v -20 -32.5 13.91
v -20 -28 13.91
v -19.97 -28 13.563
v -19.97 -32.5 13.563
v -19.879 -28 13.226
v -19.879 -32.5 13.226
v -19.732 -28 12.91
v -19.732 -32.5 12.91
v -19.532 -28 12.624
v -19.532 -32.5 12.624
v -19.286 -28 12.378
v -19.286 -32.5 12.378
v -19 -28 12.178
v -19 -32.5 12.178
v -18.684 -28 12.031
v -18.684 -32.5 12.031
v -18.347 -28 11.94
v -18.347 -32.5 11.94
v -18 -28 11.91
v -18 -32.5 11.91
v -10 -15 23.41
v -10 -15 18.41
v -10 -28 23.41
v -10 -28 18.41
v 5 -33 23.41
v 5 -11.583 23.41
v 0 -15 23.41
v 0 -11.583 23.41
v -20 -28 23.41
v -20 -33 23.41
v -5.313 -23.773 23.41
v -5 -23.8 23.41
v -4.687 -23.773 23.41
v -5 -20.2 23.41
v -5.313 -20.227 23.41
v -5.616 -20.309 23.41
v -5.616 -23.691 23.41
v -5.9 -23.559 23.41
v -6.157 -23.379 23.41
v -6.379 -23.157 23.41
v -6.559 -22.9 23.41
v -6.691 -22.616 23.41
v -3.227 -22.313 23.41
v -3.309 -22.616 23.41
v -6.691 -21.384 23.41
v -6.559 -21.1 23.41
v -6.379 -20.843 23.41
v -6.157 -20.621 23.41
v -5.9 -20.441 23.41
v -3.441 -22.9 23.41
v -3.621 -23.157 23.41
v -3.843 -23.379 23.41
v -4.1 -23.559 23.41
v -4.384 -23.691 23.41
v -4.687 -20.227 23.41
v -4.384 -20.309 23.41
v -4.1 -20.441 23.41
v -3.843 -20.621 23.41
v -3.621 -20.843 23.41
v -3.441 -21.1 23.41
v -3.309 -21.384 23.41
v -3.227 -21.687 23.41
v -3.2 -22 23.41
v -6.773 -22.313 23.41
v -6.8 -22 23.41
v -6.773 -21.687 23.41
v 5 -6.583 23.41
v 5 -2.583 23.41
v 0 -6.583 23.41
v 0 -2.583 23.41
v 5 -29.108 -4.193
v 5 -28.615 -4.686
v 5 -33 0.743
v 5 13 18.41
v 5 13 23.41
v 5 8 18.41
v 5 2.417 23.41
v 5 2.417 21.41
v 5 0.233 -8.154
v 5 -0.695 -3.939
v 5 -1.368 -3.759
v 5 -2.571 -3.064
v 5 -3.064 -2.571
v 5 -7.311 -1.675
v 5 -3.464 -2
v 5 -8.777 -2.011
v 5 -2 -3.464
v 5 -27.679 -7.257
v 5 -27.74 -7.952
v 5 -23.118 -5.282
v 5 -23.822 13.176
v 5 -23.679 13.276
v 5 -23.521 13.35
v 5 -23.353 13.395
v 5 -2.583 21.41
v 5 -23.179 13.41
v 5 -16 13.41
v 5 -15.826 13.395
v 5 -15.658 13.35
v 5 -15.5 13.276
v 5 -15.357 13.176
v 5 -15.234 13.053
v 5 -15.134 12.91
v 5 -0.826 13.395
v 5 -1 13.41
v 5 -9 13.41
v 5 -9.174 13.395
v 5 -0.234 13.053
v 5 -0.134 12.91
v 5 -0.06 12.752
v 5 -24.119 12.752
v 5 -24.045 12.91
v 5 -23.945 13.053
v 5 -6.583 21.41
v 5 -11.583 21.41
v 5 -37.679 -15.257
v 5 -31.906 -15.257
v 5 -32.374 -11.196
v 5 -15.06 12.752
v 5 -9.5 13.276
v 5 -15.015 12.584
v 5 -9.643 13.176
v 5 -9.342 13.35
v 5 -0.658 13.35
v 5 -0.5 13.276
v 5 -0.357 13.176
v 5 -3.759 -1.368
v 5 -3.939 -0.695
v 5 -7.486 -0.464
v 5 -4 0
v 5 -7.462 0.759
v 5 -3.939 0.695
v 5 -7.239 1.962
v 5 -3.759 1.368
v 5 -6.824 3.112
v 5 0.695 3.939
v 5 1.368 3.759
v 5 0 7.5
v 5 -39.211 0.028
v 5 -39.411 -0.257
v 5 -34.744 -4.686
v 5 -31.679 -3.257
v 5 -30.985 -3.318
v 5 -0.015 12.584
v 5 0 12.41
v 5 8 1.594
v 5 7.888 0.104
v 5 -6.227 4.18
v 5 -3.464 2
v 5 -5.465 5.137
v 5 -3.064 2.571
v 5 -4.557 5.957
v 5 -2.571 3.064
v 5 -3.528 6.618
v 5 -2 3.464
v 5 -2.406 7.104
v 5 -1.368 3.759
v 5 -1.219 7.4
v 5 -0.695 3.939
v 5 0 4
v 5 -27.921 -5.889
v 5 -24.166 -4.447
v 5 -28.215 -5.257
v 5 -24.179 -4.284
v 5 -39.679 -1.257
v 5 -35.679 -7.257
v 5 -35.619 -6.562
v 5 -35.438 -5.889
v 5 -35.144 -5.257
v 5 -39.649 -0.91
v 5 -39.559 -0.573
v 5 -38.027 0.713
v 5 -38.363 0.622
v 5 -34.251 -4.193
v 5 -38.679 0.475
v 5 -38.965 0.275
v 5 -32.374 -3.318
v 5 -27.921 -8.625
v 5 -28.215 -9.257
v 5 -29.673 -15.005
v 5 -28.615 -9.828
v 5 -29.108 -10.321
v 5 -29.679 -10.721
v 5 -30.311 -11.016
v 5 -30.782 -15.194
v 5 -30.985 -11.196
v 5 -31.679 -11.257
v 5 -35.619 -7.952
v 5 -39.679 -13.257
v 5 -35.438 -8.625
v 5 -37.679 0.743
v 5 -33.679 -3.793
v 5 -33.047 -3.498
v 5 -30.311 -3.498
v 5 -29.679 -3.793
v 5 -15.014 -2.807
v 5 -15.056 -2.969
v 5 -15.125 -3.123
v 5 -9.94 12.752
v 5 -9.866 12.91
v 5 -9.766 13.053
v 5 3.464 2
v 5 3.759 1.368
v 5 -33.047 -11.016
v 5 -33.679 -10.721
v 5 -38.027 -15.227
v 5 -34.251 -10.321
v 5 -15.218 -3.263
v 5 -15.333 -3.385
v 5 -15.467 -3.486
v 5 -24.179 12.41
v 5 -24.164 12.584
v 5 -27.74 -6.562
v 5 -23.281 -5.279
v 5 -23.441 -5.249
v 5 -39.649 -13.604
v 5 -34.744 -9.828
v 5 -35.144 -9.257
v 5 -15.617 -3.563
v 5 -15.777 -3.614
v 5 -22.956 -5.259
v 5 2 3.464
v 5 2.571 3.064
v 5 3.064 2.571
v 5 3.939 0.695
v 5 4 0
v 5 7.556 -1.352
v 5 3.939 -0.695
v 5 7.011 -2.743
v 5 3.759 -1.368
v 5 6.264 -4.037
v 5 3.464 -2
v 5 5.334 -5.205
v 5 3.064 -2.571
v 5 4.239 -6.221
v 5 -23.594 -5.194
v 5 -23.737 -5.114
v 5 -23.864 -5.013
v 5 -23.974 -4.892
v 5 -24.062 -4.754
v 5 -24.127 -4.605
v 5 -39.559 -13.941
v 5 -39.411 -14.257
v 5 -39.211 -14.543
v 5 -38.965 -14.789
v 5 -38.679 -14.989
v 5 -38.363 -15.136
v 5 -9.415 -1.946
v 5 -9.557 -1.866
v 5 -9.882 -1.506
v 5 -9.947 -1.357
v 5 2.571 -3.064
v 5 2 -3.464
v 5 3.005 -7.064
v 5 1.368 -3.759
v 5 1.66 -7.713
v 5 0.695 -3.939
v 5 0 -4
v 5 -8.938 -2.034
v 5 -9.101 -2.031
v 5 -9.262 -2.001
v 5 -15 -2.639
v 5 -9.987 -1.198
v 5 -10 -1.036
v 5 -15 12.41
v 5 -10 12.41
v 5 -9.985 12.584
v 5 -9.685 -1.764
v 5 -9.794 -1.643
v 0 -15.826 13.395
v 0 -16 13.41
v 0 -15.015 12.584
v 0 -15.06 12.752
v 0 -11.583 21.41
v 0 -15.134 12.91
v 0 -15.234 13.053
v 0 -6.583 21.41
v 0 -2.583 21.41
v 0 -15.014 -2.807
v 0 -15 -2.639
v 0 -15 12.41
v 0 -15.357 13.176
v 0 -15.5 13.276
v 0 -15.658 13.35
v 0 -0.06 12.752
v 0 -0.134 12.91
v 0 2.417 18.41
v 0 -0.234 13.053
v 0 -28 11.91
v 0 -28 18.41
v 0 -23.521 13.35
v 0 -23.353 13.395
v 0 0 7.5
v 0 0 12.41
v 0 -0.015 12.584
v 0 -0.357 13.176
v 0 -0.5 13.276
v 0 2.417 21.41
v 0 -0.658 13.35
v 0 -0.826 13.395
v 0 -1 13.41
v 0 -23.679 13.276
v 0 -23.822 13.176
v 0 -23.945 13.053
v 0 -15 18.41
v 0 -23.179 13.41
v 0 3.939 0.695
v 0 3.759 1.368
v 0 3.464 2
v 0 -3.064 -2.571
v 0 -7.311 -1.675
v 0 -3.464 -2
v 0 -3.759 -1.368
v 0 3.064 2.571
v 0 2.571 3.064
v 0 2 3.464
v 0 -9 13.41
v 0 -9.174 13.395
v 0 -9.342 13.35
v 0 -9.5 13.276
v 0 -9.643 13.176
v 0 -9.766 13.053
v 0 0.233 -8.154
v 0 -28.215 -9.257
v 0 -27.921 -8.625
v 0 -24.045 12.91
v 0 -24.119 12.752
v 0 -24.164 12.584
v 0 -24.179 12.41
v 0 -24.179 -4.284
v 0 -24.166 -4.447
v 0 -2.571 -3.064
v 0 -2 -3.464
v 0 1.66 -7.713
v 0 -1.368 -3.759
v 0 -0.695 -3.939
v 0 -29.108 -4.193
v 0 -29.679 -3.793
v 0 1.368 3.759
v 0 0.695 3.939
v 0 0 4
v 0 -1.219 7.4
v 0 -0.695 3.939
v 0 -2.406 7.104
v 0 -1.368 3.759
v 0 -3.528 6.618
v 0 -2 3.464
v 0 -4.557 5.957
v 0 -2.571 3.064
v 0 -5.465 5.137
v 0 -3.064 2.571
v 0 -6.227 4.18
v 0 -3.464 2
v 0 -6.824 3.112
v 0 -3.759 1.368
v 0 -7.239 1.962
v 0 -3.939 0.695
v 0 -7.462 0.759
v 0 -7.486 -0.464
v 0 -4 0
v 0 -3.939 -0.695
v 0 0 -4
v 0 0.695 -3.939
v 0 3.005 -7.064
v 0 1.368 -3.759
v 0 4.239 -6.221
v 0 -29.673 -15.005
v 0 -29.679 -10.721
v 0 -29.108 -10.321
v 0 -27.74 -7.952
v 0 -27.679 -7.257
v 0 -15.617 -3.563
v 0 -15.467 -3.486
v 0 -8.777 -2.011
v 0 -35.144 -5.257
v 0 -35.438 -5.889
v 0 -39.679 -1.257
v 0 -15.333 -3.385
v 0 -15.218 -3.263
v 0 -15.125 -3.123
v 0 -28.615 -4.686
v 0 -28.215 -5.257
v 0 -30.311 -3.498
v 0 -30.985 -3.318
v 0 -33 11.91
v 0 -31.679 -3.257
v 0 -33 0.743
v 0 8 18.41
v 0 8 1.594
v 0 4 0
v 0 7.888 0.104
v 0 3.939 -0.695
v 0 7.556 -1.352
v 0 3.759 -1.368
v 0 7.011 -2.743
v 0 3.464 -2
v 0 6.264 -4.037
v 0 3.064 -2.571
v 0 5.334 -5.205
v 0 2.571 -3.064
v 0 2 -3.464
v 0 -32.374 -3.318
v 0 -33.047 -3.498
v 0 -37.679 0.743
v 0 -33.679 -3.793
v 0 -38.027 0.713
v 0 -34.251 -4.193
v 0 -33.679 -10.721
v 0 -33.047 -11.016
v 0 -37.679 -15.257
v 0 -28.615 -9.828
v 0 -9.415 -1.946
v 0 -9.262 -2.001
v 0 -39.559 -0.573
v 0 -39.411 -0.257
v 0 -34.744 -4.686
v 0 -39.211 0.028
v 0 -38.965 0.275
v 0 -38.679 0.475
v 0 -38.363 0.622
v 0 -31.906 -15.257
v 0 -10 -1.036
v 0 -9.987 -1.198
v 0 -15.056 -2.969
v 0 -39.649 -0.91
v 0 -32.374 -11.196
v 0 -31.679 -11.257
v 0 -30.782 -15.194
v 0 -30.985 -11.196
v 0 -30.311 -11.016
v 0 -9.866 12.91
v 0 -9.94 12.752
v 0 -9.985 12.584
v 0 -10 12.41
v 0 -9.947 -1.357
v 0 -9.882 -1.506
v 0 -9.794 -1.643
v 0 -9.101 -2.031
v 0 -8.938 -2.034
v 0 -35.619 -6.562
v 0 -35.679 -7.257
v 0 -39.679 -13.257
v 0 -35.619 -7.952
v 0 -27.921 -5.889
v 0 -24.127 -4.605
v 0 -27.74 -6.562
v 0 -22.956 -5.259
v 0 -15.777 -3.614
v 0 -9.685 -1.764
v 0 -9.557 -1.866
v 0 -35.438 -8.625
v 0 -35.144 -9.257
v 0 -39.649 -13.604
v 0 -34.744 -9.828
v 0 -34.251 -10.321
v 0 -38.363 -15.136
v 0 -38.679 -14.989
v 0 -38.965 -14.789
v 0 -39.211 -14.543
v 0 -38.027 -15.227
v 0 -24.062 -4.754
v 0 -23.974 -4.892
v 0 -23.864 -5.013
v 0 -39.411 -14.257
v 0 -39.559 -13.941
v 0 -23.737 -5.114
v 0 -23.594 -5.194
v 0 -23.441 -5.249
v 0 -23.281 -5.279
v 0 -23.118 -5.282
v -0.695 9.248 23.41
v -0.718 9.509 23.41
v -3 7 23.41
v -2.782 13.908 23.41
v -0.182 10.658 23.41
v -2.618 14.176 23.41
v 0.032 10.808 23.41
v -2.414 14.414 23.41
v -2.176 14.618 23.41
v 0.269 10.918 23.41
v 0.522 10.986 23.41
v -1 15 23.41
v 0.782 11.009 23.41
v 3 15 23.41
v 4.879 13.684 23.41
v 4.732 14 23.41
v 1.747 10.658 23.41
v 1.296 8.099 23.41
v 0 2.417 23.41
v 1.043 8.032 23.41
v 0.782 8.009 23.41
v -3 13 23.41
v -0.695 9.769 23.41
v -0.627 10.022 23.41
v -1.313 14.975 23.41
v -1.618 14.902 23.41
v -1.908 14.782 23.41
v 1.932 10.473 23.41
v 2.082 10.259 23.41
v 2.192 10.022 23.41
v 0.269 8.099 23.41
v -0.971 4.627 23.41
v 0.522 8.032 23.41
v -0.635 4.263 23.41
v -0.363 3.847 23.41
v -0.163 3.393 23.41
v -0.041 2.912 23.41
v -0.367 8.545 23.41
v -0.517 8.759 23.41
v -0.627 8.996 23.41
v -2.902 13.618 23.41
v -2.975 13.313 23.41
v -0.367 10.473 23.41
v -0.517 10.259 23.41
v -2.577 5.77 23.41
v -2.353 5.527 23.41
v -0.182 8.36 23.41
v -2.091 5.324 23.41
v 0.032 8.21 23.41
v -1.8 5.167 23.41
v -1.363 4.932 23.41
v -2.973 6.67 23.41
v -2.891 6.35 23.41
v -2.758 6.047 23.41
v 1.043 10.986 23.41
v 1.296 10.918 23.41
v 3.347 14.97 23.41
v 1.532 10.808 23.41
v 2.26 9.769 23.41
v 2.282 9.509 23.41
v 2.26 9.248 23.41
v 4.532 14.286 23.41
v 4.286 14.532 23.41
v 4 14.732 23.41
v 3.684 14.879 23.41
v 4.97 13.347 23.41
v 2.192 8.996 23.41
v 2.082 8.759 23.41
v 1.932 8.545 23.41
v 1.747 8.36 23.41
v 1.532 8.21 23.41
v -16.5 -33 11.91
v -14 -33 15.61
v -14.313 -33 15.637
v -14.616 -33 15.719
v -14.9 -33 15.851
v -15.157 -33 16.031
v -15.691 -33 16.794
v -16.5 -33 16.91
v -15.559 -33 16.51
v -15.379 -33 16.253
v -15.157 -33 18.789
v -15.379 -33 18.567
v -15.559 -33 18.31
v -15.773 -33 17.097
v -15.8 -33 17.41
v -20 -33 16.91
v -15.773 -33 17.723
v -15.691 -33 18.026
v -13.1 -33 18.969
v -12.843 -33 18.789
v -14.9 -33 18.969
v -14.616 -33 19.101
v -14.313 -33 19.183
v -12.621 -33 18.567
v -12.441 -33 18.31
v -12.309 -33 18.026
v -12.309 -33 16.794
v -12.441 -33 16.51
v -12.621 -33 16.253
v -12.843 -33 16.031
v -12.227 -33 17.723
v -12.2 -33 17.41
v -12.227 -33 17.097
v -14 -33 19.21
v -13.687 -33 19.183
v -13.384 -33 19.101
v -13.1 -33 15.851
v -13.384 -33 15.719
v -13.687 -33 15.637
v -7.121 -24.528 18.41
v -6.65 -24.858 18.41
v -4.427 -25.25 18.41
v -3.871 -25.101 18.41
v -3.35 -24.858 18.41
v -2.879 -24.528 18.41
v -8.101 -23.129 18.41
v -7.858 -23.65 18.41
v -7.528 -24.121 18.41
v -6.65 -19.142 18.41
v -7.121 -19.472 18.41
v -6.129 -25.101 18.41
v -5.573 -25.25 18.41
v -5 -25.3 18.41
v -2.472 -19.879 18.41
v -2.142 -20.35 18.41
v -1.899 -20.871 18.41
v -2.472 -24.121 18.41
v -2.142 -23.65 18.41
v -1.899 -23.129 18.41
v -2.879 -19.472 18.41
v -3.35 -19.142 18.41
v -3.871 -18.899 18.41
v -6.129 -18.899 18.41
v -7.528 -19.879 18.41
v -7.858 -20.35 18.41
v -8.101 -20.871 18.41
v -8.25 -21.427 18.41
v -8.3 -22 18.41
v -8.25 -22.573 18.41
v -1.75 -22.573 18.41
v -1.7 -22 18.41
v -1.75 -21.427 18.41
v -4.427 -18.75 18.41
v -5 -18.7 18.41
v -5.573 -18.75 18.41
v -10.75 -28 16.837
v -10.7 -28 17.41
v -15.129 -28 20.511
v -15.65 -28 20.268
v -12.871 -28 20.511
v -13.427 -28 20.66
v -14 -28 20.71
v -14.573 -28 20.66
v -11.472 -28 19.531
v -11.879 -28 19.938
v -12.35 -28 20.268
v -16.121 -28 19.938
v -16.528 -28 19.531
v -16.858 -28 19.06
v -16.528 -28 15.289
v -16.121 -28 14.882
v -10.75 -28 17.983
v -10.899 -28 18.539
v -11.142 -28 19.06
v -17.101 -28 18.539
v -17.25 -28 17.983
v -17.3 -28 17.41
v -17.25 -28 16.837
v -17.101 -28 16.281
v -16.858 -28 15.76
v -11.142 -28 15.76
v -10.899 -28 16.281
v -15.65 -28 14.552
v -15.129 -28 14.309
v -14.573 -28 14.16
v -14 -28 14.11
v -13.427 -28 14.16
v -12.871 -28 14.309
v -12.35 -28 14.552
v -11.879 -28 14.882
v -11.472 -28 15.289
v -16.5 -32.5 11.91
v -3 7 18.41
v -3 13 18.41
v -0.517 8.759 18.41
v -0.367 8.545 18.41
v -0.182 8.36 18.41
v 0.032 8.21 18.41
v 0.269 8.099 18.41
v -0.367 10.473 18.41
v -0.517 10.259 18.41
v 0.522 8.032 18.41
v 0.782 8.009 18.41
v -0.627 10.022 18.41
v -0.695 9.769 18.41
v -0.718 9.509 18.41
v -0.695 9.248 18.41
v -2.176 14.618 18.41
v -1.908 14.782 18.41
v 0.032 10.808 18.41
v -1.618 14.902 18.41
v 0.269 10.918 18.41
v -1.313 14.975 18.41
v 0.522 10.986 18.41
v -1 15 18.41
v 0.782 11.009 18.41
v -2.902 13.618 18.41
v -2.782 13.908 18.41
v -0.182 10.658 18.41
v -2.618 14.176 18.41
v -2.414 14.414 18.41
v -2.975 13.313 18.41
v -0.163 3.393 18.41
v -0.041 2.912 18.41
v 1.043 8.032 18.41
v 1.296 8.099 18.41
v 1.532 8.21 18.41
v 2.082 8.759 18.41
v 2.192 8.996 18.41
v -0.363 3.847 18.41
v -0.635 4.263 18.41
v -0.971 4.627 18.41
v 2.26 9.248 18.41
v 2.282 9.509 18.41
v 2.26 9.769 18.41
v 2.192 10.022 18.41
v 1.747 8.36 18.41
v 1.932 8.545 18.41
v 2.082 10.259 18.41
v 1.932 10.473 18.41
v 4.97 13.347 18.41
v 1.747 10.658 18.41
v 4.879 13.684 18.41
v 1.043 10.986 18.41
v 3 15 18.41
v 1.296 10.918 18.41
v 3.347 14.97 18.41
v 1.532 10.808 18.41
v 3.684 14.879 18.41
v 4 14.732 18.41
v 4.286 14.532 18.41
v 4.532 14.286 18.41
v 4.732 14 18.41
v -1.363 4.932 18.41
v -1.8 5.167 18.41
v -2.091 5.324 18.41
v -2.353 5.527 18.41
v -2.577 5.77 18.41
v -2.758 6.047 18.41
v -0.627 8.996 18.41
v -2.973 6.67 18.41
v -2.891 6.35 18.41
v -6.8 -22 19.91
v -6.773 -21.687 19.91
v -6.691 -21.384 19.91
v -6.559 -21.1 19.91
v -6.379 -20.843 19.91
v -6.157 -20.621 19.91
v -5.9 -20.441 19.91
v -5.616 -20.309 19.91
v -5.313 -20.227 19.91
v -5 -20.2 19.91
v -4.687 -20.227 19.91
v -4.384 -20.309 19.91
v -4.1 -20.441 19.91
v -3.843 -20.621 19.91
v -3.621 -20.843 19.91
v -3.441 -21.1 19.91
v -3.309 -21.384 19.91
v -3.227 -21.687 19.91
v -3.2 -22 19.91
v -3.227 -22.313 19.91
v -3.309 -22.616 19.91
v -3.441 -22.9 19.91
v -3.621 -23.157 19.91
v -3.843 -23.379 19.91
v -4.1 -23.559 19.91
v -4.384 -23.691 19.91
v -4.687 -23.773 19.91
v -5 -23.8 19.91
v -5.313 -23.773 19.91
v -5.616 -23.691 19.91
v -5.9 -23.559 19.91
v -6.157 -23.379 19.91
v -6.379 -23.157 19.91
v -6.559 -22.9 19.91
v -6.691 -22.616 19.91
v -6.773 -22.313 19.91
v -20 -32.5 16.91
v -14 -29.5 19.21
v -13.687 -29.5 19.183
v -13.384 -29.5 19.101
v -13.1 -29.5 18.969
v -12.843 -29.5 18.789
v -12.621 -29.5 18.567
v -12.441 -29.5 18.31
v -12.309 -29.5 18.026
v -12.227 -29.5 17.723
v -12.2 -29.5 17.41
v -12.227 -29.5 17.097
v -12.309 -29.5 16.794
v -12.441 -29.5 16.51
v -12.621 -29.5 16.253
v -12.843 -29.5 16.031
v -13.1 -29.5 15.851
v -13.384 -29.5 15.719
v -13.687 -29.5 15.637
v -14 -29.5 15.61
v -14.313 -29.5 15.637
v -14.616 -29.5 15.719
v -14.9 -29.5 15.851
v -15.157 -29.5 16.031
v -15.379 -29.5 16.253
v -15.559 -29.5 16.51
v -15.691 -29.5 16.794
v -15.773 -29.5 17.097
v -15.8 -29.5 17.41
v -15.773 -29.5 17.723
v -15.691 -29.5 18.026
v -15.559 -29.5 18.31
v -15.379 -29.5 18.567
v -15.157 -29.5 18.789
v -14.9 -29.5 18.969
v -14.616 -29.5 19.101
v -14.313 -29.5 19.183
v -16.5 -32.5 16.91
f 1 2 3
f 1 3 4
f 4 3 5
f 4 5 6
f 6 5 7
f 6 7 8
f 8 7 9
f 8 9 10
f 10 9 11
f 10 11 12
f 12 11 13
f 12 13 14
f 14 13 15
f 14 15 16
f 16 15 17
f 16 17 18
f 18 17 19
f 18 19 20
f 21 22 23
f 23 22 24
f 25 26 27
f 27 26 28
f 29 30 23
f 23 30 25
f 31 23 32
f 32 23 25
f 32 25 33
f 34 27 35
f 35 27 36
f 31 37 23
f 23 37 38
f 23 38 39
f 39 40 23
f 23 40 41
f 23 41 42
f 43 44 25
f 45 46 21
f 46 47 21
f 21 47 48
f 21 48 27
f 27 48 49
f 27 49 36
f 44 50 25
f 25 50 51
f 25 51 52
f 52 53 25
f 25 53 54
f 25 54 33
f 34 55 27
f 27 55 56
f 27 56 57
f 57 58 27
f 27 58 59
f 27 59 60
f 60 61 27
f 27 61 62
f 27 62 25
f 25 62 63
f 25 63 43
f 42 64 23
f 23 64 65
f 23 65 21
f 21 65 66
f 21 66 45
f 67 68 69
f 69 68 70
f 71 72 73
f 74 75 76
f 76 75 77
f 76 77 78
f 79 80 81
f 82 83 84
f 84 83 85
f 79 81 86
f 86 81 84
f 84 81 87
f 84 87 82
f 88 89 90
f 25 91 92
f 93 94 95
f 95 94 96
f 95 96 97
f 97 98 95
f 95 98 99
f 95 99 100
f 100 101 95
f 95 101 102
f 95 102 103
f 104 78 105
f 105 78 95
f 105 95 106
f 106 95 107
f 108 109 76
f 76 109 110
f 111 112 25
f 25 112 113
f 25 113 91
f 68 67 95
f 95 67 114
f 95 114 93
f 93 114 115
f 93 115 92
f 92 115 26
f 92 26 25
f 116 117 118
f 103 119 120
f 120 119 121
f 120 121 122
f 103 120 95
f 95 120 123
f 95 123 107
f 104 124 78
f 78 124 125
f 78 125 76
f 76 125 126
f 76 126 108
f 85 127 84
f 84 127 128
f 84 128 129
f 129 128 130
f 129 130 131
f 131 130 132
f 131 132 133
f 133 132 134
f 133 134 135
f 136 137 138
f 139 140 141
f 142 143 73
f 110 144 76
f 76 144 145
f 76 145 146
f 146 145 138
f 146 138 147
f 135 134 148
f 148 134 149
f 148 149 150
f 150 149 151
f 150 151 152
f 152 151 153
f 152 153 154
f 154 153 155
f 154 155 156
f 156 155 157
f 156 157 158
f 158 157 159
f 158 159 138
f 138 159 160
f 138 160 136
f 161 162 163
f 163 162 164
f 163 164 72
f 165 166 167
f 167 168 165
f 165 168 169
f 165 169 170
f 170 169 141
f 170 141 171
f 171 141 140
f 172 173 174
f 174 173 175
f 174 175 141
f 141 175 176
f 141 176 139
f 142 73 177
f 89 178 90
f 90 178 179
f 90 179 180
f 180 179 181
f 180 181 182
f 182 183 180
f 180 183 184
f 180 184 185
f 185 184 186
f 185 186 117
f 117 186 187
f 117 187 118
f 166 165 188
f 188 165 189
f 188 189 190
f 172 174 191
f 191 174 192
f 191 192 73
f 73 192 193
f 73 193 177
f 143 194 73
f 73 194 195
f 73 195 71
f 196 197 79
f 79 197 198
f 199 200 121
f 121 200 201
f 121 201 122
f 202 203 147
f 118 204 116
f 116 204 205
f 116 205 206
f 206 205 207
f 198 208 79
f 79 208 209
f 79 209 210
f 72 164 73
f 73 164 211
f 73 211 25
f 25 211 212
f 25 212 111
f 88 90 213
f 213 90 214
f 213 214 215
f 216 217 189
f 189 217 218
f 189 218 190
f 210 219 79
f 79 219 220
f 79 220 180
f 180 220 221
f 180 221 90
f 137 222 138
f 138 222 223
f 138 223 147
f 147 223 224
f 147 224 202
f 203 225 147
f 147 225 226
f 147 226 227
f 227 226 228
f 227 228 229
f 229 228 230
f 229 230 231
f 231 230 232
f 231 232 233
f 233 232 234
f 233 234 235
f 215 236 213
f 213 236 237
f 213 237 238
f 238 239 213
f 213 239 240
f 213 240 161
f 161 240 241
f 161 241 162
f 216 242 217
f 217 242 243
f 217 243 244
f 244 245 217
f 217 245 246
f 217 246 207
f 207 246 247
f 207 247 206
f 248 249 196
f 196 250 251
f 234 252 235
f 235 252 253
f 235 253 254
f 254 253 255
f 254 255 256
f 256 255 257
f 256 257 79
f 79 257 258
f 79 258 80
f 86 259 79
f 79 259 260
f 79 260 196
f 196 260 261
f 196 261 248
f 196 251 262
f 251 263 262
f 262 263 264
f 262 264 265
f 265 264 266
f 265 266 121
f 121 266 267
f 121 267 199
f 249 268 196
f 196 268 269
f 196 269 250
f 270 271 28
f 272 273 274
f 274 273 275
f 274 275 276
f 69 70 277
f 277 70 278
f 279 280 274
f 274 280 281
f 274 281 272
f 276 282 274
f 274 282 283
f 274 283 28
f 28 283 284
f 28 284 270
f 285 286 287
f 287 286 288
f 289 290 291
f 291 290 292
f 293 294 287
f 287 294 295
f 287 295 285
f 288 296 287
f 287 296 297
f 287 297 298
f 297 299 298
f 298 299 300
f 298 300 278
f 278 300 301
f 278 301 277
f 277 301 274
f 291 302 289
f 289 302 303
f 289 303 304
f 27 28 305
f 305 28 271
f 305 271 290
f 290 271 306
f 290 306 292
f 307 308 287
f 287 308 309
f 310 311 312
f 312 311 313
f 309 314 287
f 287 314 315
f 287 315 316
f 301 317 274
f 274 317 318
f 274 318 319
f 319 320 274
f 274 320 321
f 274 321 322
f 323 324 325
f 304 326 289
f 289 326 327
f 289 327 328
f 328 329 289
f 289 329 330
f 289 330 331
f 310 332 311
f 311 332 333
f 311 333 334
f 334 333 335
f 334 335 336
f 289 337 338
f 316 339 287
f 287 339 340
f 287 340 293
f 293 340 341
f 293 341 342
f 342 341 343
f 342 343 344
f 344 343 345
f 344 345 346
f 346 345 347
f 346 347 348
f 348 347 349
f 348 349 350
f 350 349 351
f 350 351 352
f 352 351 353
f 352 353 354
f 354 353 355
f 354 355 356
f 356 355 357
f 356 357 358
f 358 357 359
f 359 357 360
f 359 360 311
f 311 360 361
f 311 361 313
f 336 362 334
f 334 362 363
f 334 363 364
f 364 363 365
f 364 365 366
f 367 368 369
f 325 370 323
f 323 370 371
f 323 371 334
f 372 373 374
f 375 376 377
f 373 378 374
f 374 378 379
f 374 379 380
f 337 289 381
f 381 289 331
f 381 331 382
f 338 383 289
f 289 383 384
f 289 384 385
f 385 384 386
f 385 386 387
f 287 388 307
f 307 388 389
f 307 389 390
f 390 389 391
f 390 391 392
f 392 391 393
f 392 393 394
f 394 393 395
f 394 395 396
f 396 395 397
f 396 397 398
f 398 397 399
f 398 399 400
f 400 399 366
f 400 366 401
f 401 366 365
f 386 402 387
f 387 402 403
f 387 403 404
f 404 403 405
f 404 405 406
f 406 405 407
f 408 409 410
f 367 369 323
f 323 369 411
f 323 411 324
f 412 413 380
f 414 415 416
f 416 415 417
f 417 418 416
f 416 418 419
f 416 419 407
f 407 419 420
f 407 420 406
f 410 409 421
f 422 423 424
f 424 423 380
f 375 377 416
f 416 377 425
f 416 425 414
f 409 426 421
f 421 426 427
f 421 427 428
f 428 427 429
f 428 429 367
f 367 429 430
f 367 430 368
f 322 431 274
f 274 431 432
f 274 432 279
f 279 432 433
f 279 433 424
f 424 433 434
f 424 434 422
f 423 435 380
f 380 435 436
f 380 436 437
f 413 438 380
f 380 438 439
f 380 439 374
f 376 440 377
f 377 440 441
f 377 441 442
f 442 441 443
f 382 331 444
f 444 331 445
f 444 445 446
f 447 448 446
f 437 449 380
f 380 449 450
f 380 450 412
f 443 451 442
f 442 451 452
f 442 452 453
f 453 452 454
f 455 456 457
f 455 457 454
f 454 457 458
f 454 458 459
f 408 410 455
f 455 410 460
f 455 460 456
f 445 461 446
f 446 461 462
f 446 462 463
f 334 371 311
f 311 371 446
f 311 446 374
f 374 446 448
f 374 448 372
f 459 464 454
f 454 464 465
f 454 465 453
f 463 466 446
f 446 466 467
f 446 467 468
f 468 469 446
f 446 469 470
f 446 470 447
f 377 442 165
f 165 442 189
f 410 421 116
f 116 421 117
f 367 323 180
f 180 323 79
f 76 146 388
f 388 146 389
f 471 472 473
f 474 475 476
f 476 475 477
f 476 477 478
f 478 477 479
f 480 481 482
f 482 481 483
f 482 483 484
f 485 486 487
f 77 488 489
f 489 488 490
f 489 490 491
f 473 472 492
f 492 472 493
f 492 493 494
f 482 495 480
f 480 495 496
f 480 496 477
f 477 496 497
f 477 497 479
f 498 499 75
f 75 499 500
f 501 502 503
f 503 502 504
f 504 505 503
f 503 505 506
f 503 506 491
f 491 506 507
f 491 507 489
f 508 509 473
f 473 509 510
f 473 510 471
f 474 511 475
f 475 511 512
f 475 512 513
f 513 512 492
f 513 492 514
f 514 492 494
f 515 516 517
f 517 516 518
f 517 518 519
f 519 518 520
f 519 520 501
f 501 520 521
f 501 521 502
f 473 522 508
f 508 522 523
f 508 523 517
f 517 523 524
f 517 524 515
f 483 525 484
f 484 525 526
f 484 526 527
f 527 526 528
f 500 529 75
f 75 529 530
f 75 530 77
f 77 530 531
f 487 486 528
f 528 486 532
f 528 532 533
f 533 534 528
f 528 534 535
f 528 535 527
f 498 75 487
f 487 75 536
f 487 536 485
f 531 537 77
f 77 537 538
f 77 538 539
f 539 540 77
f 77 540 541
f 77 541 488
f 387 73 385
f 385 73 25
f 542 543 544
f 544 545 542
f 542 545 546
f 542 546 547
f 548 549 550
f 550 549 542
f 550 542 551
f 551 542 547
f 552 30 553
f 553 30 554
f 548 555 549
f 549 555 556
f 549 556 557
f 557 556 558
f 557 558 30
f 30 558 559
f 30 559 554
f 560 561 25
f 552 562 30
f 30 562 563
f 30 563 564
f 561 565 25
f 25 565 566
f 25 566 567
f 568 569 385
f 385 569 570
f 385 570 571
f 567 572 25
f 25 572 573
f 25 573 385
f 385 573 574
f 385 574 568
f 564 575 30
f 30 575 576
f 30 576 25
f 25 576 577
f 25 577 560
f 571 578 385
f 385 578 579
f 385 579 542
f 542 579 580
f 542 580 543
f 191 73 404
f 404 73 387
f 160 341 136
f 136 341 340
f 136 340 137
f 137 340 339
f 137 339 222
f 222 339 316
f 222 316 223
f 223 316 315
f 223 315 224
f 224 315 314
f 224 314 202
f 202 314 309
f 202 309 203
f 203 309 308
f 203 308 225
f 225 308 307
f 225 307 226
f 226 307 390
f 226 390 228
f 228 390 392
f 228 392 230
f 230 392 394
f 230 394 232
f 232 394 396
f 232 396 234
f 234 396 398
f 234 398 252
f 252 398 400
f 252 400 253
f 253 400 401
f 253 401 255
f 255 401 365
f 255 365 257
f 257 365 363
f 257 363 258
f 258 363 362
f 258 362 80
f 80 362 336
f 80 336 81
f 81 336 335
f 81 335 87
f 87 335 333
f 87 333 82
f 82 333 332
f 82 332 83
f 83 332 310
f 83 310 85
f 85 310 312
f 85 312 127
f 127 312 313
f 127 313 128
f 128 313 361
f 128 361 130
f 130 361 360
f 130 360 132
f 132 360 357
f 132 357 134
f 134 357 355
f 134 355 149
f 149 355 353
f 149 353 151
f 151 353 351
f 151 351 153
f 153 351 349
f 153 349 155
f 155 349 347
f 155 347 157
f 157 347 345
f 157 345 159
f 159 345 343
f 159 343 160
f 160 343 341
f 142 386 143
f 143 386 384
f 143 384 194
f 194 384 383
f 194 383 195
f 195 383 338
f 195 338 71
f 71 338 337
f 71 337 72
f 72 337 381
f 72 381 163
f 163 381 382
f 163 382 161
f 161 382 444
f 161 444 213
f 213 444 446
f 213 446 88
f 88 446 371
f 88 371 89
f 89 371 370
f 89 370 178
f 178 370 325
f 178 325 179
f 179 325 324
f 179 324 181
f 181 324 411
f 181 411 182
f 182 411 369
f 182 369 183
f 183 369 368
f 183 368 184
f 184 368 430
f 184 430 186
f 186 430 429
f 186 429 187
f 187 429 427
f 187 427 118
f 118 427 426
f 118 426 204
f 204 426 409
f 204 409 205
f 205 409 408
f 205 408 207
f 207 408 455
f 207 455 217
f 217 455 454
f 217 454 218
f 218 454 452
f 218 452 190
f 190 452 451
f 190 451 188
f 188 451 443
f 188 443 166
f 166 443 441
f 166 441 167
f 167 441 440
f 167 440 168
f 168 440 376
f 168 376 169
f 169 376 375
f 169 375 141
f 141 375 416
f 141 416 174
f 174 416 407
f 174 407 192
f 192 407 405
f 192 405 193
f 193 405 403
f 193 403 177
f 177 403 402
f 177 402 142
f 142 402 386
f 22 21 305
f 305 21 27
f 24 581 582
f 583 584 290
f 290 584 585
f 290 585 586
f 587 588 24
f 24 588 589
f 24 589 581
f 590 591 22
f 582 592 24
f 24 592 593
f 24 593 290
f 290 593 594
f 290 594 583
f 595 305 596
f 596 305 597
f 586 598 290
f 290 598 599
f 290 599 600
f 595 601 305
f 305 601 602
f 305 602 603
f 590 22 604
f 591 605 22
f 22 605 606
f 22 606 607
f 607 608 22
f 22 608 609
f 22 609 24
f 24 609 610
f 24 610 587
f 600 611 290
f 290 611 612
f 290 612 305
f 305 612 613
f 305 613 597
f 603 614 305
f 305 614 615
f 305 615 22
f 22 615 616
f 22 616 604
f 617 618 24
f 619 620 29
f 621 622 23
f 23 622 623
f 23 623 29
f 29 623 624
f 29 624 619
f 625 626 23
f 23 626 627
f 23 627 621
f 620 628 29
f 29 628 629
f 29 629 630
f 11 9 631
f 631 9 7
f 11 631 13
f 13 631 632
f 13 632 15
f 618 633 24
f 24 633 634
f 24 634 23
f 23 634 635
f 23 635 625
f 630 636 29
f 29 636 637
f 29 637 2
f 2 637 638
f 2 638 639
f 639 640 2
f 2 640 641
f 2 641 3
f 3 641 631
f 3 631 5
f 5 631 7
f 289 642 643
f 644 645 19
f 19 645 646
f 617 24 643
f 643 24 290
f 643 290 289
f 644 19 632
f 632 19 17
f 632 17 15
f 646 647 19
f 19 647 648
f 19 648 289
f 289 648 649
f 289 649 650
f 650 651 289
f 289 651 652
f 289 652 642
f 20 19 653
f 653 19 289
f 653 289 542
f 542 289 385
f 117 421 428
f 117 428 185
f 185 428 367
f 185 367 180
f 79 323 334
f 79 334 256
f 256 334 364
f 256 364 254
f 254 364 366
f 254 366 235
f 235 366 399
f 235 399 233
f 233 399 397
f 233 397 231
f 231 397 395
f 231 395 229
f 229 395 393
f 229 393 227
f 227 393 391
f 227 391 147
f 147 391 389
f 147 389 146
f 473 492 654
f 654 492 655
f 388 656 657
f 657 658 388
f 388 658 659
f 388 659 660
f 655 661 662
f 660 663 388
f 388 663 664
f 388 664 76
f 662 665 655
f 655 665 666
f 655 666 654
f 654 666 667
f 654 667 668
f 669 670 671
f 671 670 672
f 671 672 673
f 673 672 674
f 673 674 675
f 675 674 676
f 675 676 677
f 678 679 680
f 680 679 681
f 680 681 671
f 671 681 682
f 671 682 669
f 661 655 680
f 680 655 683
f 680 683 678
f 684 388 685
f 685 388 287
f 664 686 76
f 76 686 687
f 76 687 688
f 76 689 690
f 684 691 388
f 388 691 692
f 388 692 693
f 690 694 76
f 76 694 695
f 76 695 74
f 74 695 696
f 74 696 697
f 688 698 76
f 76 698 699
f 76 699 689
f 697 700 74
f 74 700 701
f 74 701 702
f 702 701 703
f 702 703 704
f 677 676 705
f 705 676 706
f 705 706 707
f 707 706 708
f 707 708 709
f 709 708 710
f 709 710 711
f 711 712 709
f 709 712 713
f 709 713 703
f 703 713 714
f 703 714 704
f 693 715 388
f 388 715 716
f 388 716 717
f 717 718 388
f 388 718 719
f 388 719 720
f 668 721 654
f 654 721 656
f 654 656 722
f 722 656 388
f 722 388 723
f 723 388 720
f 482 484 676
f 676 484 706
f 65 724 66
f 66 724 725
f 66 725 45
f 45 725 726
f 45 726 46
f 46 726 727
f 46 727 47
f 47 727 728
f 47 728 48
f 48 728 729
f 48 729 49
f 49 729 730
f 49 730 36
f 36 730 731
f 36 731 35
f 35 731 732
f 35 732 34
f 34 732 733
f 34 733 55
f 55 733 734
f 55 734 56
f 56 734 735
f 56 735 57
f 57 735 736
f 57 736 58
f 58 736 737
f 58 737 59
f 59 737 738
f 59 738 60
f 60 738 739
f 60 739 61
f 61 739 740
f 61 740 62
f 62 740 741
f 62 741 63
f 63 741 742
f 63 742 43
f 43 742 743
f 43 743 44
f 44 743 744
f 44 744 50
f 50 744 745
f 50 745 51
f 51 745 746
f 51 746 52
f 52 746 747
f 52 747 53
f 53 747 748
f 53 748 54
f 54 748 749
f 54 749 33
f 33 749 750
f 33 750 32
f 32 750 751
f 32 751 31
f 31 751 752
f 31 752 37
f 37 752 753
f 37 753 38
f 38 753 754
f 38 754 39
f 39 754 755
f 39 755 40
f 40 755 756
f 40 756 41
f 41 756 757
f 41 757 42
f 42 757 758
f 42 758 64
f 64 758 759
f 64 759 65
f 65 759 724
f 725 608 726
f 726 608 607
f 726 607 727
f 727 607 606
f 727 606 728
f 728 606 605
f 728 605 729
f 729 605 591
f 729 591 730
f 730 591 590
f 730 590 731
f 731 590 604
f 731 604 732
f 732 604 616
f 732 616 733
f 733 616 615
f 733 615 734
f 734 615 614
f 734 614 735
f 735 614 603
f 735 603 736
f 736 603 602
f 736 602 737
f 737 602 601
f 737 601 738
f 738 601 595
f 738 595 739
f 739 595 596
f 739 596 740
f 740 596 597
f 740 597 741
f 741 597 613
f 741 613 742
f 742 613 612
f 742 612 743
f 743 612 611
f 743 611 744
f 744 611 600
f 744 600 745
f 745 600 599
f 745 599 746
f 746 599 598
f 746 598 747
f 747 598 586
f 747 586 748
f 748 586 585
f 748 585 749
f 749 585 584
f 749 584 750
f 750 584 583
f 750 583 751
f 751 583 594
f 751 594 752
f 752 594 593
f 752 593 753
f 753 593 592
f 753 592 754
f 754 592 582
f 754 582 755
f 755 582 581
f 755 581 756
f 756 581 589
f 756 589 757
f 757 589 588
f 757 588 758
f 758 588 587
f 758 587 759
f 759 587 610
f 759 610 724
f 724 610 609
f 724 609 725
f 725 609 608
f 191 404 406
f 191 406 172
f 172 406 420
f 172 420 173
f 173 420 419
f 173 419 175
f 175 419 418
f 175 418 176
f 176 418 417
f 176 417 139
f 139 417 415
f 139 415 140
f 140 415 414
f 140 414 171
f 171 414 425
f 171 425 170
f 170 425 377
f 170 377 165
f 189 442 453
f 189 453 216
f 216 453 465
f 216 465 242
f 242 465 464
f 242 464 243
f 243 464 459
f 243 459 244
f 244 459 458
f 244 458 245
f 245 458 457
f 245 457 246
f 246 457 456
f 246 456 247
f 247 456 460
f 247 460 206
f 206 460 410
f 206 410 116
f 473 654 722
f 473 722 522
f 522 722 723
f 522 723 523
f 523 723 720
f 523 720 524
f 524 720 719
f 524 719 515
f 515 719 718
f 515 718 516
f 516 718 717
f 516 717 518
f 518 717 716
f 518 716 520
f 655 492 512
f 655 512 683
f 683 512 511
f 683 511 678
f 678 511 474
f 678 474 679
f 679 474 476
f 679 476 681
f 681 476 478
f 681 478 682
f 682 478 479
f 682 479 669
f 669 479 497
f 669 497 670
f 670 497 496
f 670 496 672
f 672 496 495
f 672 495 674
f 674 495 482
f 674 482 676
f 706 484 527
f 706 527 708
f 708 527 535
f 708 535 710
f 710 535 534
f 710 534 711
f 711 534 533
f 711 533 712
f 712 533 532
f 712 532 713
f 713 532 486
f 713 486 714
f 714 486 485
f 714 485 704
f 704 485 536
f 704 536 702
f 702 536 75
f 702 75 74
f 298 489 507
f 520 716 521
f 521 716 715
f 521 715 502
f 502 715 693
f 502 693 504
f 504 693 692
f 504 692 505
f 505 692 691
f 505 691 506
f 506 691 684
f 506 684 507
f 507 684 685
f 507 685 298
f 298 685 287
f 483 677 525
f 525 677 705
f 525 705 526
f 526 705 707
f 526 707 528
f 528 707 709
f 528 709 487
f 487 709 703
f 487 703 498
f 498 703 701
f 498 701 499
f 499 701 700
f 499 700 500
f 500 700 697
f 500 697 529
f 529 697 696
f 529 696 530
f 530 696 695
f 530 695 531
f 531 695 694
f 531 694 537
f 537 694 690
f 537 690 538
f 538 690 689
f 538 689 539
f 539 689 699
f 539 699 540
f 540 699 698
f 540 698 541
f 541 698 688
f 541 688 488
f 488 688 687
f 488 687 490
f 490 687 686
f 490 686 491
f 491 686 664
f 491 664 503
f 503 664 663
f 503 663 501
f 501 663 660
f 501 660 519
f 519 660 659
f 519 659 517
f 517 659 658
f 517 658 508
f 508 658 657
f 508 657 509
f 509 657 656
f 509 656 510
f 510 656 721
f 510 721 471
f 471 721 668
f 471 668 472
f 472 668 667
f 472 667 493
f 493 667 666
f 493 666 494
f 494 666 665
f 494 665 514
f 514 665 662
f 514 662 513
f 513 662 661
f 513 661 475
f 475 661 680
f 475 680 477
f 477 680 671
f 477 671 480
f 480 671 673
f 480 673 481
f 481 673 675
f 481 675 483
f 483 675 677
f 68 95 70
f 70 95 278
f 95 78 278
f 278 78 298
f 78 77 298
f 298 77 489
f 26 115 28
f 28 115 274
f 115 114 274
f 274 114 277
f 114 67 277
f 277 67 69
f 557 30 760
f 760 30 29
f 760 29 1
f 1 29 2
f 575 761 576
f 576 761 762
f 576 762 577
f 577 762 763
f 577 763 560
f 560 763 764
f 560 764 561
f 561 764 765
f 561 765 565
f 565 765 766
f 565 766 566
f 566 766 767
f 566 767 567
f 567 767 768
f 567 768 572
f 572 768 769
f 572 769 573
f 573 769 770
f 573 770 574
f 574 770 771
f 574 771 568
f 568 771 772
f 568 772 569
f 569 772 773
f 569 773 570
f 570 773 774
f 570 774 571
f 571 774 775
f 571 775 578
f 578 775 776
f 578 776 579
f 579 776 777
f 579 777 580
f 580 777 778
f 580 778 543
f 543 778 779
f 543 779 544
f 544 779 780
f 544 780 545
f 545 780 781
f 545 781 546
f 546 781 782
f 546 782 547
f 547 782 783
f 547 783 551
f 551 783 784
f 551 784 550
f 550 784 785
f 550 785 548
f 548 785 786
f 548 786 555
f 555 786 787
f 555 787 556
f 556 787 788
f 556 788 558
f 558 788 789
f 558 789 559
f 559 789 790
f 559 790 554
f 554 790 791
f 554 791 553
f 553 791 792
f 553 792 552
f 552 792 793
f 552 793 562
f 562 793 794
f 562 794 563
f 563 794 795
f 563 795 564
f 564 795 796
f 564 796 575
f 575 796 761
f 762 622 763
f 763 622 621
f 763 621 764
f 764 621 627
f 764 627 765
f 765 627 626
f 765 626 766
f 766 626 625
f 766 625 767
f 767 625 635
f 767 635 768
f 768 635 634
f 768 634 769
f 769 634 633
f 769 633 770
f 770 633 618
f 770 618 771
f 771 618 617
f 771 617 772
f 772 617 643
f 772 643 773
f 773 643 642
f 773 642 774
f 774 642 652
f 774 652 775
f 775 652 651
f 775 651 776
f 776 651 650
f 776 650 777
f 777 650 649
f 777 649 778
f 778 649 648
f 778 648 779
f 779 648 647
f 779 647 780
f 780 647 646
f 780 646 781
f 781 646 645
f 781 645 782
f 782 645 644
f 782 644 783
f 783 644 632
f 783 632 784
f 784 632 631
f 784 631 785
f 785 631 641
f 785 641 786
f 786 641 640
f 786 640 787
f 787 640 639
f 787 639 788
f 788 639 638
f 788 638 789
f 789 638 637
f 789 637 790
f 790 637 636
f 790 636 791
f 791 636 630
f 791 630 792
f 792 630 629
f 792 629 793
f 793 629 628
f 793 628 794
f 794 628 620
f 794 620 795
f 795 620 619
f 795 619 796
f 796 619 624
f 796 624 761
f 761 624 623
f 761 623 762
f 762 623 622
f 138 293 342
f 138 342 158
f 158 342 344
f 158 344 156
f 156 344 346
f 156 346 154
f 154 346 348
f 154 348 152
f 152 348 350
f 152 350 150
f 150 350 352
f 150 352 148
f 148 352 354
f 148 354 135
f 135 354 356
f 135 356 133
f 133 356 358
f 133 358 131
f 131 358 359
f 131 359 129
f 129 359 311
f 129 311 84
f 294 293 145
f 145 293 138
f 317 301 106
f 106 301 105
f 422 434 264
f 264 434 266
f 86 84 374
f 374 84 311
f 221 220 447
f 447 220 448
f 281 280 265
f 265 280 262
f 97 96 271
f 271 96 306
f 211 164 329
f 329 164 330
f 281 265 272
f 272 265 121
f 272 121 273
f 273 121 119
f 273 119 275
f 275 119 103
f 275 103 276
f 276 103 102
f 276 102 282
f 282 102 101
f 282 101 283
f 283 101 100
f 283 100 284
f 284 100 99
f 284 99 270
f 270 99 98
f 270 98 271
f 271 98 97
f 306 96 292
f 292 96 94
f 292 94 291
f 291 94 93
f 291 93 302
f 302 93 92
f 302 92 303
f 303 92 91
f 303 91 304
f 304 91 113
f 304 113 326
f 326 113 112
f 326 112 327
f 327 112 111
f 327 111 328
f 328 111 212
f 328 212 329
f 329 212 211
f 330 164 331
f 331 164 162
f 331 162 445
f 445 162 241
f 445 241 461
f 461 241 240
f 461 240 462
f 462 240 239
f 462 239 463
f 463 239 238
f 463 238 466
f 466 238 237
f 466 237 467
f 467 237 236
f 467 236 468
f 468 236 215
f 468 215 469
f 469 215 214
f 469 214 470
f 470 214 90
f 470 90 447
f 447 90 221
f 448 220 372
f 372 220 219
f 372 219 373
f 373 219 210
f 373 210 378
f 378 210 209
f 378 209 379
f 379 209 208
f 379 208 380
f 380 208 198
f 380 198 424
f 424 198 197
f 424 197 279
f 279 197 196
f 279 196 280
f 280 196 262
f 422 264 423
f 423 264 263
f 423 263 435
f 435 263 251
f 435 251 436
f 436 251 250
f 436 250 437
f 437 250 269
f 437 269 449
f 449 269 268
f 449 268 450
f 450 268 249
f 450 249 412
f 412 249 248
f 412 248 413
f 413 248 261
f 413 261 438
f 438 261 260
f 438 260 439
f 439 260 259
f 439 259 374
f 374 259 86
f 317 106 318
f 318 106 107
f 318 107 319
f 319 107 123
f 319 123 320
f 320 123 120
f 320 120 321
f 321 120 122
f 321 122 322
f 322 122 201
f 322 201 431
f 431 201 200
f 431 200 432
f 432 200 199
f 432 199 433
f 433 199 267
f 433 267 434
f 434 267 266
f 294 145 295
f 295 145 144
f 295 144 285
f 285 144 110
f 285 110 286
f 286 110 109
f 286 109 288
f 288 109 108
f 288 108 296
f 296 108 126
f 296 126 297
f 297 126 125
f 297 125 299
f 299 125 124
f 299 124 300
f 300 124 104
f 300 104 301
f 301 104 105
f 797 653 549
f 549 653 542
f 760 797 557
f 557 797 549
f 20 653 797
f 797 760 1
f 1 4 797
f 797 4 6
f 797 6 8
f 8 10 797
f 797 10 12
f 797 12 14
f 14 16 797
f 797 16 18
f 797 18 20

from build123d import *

# Parameters (mm, degrees)
SKETCH_1_R                = 4
EXTRUDE_1_DEPTH           = 5
EXTRUDE_2_DEPTH           = 10
FILLET_1_R                = 10
EXTRUDE_3_DEPTH           = 7
EXTRUDE_3_DEPTH_BACK      = 3
SKETCH_7_W                = 8
SKETCH_7_H                = 5
HOLE_WIZARD_1_D           = 3.6
HOLE_WIZARD_1_CSINK_D     = 6.6
HOLE_WIZARD_1_CSINK_ANGLE = 90
FILLET_2_R                = 2
FILLET_3_R                = 3
MM_TRANSITIONAL_1_D       = 3
SKETCH_10_W               = 2
SKETCH_10_H               = 5
CUT_EXTRUDE_1_DEPTH       = 48.143222787
SKETCH_11_W               = 11.5
SKETCH_11_H               = 5
EXTRUDE_4_DEPTH           = 10
HOLE_WIZARD_2_D           = 3.6
HOLE_WIZARD_2_CSINK_D     = 6.6
HOLE_WIZARD_2_CSINK_ANGLE = 90
CUT_EXTRUDE_2_DEPTH       = 51.224331302
FILLET_5_R                = 1
FILLET_6_R                = 2
SKETCH_13_W               = 3.5
SKETCH_13_H               = 5
CUT_EXTRUDE_3_DEPTH       = 0.5


with BuildPart() as part:
    # 草图1 → 凸台-拉伸1 (new body)
    with BuildSketch(Plane(origin=(0, 0, 0), x_dir=(0, 0, -1), z_dir=(1, 0, 0))):
        Polygon((-23.41, -33), (-0.742923434, -33), (-0.742923434, -39.679407187), (15.257076566, -39.679407187), (15.257076566, -30.774808421), (6.3745949, 8), (-23.41, 8), align=None)
        Circle(SKETCH_1_R, mode=Mode.SUBTRACT)
        with Locations((7.257076566, -31.679407187)):
            Circle(SKETCH_1_R, mode=Mode.SUBTRACT)
    extrude(amount=EXTRUDE_1_DEPTH)

    # 草图2 → 凸台-拉伸2 (add)
    with BuildSketch(Plane.ZY):
        Polygon((23.41, -15), (23.41, -33), (11.91, -33), (11.91, -28), (18.41, -28), (18.41, -15), align=None)
    extrude(amount=EXTRUDE_2_DEPTH)

    # 圆角1
    fillet_1_edges = [part.edges().sort_by_distance(p)[0] for p in [
        (2.5, 8, -6.3745949),
        (2.5, -30.774808421, -15.257076566),
    ]]
    fillet(fillet_1_edges, radius=FILLET_1_R)

    # 草图7 → 凸台-拉伸3 (add, two sides: drawn at the far end of the back side and taken through both)
    with BuildSketch(Plane(origin=(0, 8, 0), x_dir=(1, 0, 0), z_dir=(0, 1, 0)).offset(-EXTRUDE_3_DEPTH_BACK)):
        with Locations((1, -20.91)):
            Rectangle(SKETCH_7_W, SKETCH_7_H)
    extrude(amount=EXTRUDE_3_DEPTH + EXTRUDE_3_DEPTH_BACK)

    # 打孔尺寸(%根据十字)槽半沉头木螺钉的类型1 (through all)
    with Locations(Plane(origin=(0, 0, 18.41), x_dir=(-1, 0, 0), z_dir=(0, 0, -1))):
        with Locations((5, -22)):
            CounterSinkHole(HOLE_WIZARD_1_D / 2, HOLE_WIZARD_1_CSINK_D / 2, counter_sink_angle=HOLE_WIZARD_1_CSINK_ANGLE)

    # 圆角2
    fillet_2_edges = [part.edges().sort_by_distance(p)[0] for p in [
        (2.5, -39.679407187, 0.742923434),
        (2.5, -39.679407187, -15.257076566),
        (-3, 5, 20.91),
        (5, 15, 20.91),
        (-3, 15, 20.91),
    ]]
    fillet(fillet_2_edges, radius=FILLET_2_R)

    # 圆角3
    # the kernel refuses this fillet: 3 mm, written as the material it adds along each edge
    with BuildSketch(Plane(origin=(0, 5, 23.41), x_dir=(0, -1, 0), z_dir=(0, 0, -1))) as fillet_3_piece_1:
        with BuildLine():
            CenterArc((2.582575695, 3), FILLET_3_R, 203.578178478, 66.421821522)
            Line((-0.166969722, 1.8), (-0.441924264, 1.68))
            ThreePointArc((-0.441924264, 1.68), (-0.3, 1), (-0.3, 0))
            Line((-0.3, 0), (0, -0.3))
            Line((0, -0.3), (2.582575695, -0.3))
            Line((2.582575695, -0.3), (2.582575695, 0))
        make_face()
    extrude(amount=5)

    # 大小mm Transitional 暗销孔1 (through all)
    with Locations(Plane(origin=(0, 0, 18.41), x_dir=(-1, 0, 0), z_dir=(0, 0, -1))):
        with Locations((-0.78249385, 9.508910889)):
            Hole(MM_TRANSITIONAL_1_D / 2)

    # 草图10 → 切除-拉伸1 (cut, through all)
    with BuildSketch(Plane.ZY):
        with Locations((22.41, -0.082575695)):
            Rectangle(SKETCH_10_W, SKETCH_10_H)
        with Locations((22.41, -9.082575695)):
            Rectangle(SKETCH_10_W, SKETCH_10_H)
    extrude(amount=-CUT_EXTRUDE_1_DEPTH, mode=Mode.SUBTRACT)

    # 草图11 → 凸台-拉伸4 (add)
    with BuildSketch(Plane.ZY.offset(10)):
        with Locations((17.66, -30.5)):
            Rectangle(SKETCH_11_W, SKETCH_11_H)
    extrude(amount=EXTRUDE_4_DEPTH)

    # 打孔尺寸(%根据十字)槽半沉头木螺钉的类型2 (through all)
    with Locations(Plane(origin=(0, -28, 0), x_dir=(1, 0, 0), z_dir=(0, 1, 0))):
        with Locations((-14, -17.41)):
            CounterSinkHole(HOLE_WIZARD_2_D / 2, HOLE_WIZARD_2_CSINK_D / 2, counter_sink_angle=HOLE_WIZARD_2_CSINK_ANGLE)

    # 草图12 → 切除-拉伸2 (cut, through all)
    with BuildSketch(Plane.ZY):
        with BuildLine():
            Line((7.5, 0), (13.41, 0))
            Line((13.41, 0), (13.41, -10))
            Line((13.41, -10), (-2.290786732, -10))
            Line((-2.290786732, -10), (-1.674709977, -7.310632428))
            ThreePointArc((-1.674709977, -7.310632428), (4.673846124, -5.865591395), (7.5, 0))
        make_face()
        Polygon((-5.538986517, -24.179407187), (13.41, -24.179407187), (13.41, -15), (-3.436180098, -15), align=None)
    extrude(amount=-CUT_EXTRUDE_2_DEPTH, mode=Mode.SUBTRACT)

    # 圆角5
    fillet_5_edges = [part.edges().sort_by_distance(p)[0] for p in [
        (2.5, 0, 13.41),
        (2.5, -10, 13.41),
        (2.5, -10, -2.290786732),
        (2.5, -24.179407187, -5.538986517),
        (2.5, -15, -3.436180098),
        (2.5, -15, 13.41),
        (2.5, -24.179407187, 13.41),
    ]]
    fillet(fillet_5_edges, radius=FILLET_5_R)

    # 圆角6
    fillet_6_edges = [part.edges().sort_by_distance(p)[0] for p in [
        (-20, -30.5, 11.91),
    ]]
    fillet(fillet_6_edges, radius=FILLET_6_R)

    # 草图13 → 切除-拉伸3 (cut)
    with BuildSketch(Plane.XZ.offset(33)):
        with Locations((-18.25, 14.41)):
            Rectangle(SKETCH_13_W, SKETCH_13_H)
    extrude(amount=-CUT_EXTRUDE_3_DEPTH, mode=Mode.SUBTRACT)


solid = part.part
